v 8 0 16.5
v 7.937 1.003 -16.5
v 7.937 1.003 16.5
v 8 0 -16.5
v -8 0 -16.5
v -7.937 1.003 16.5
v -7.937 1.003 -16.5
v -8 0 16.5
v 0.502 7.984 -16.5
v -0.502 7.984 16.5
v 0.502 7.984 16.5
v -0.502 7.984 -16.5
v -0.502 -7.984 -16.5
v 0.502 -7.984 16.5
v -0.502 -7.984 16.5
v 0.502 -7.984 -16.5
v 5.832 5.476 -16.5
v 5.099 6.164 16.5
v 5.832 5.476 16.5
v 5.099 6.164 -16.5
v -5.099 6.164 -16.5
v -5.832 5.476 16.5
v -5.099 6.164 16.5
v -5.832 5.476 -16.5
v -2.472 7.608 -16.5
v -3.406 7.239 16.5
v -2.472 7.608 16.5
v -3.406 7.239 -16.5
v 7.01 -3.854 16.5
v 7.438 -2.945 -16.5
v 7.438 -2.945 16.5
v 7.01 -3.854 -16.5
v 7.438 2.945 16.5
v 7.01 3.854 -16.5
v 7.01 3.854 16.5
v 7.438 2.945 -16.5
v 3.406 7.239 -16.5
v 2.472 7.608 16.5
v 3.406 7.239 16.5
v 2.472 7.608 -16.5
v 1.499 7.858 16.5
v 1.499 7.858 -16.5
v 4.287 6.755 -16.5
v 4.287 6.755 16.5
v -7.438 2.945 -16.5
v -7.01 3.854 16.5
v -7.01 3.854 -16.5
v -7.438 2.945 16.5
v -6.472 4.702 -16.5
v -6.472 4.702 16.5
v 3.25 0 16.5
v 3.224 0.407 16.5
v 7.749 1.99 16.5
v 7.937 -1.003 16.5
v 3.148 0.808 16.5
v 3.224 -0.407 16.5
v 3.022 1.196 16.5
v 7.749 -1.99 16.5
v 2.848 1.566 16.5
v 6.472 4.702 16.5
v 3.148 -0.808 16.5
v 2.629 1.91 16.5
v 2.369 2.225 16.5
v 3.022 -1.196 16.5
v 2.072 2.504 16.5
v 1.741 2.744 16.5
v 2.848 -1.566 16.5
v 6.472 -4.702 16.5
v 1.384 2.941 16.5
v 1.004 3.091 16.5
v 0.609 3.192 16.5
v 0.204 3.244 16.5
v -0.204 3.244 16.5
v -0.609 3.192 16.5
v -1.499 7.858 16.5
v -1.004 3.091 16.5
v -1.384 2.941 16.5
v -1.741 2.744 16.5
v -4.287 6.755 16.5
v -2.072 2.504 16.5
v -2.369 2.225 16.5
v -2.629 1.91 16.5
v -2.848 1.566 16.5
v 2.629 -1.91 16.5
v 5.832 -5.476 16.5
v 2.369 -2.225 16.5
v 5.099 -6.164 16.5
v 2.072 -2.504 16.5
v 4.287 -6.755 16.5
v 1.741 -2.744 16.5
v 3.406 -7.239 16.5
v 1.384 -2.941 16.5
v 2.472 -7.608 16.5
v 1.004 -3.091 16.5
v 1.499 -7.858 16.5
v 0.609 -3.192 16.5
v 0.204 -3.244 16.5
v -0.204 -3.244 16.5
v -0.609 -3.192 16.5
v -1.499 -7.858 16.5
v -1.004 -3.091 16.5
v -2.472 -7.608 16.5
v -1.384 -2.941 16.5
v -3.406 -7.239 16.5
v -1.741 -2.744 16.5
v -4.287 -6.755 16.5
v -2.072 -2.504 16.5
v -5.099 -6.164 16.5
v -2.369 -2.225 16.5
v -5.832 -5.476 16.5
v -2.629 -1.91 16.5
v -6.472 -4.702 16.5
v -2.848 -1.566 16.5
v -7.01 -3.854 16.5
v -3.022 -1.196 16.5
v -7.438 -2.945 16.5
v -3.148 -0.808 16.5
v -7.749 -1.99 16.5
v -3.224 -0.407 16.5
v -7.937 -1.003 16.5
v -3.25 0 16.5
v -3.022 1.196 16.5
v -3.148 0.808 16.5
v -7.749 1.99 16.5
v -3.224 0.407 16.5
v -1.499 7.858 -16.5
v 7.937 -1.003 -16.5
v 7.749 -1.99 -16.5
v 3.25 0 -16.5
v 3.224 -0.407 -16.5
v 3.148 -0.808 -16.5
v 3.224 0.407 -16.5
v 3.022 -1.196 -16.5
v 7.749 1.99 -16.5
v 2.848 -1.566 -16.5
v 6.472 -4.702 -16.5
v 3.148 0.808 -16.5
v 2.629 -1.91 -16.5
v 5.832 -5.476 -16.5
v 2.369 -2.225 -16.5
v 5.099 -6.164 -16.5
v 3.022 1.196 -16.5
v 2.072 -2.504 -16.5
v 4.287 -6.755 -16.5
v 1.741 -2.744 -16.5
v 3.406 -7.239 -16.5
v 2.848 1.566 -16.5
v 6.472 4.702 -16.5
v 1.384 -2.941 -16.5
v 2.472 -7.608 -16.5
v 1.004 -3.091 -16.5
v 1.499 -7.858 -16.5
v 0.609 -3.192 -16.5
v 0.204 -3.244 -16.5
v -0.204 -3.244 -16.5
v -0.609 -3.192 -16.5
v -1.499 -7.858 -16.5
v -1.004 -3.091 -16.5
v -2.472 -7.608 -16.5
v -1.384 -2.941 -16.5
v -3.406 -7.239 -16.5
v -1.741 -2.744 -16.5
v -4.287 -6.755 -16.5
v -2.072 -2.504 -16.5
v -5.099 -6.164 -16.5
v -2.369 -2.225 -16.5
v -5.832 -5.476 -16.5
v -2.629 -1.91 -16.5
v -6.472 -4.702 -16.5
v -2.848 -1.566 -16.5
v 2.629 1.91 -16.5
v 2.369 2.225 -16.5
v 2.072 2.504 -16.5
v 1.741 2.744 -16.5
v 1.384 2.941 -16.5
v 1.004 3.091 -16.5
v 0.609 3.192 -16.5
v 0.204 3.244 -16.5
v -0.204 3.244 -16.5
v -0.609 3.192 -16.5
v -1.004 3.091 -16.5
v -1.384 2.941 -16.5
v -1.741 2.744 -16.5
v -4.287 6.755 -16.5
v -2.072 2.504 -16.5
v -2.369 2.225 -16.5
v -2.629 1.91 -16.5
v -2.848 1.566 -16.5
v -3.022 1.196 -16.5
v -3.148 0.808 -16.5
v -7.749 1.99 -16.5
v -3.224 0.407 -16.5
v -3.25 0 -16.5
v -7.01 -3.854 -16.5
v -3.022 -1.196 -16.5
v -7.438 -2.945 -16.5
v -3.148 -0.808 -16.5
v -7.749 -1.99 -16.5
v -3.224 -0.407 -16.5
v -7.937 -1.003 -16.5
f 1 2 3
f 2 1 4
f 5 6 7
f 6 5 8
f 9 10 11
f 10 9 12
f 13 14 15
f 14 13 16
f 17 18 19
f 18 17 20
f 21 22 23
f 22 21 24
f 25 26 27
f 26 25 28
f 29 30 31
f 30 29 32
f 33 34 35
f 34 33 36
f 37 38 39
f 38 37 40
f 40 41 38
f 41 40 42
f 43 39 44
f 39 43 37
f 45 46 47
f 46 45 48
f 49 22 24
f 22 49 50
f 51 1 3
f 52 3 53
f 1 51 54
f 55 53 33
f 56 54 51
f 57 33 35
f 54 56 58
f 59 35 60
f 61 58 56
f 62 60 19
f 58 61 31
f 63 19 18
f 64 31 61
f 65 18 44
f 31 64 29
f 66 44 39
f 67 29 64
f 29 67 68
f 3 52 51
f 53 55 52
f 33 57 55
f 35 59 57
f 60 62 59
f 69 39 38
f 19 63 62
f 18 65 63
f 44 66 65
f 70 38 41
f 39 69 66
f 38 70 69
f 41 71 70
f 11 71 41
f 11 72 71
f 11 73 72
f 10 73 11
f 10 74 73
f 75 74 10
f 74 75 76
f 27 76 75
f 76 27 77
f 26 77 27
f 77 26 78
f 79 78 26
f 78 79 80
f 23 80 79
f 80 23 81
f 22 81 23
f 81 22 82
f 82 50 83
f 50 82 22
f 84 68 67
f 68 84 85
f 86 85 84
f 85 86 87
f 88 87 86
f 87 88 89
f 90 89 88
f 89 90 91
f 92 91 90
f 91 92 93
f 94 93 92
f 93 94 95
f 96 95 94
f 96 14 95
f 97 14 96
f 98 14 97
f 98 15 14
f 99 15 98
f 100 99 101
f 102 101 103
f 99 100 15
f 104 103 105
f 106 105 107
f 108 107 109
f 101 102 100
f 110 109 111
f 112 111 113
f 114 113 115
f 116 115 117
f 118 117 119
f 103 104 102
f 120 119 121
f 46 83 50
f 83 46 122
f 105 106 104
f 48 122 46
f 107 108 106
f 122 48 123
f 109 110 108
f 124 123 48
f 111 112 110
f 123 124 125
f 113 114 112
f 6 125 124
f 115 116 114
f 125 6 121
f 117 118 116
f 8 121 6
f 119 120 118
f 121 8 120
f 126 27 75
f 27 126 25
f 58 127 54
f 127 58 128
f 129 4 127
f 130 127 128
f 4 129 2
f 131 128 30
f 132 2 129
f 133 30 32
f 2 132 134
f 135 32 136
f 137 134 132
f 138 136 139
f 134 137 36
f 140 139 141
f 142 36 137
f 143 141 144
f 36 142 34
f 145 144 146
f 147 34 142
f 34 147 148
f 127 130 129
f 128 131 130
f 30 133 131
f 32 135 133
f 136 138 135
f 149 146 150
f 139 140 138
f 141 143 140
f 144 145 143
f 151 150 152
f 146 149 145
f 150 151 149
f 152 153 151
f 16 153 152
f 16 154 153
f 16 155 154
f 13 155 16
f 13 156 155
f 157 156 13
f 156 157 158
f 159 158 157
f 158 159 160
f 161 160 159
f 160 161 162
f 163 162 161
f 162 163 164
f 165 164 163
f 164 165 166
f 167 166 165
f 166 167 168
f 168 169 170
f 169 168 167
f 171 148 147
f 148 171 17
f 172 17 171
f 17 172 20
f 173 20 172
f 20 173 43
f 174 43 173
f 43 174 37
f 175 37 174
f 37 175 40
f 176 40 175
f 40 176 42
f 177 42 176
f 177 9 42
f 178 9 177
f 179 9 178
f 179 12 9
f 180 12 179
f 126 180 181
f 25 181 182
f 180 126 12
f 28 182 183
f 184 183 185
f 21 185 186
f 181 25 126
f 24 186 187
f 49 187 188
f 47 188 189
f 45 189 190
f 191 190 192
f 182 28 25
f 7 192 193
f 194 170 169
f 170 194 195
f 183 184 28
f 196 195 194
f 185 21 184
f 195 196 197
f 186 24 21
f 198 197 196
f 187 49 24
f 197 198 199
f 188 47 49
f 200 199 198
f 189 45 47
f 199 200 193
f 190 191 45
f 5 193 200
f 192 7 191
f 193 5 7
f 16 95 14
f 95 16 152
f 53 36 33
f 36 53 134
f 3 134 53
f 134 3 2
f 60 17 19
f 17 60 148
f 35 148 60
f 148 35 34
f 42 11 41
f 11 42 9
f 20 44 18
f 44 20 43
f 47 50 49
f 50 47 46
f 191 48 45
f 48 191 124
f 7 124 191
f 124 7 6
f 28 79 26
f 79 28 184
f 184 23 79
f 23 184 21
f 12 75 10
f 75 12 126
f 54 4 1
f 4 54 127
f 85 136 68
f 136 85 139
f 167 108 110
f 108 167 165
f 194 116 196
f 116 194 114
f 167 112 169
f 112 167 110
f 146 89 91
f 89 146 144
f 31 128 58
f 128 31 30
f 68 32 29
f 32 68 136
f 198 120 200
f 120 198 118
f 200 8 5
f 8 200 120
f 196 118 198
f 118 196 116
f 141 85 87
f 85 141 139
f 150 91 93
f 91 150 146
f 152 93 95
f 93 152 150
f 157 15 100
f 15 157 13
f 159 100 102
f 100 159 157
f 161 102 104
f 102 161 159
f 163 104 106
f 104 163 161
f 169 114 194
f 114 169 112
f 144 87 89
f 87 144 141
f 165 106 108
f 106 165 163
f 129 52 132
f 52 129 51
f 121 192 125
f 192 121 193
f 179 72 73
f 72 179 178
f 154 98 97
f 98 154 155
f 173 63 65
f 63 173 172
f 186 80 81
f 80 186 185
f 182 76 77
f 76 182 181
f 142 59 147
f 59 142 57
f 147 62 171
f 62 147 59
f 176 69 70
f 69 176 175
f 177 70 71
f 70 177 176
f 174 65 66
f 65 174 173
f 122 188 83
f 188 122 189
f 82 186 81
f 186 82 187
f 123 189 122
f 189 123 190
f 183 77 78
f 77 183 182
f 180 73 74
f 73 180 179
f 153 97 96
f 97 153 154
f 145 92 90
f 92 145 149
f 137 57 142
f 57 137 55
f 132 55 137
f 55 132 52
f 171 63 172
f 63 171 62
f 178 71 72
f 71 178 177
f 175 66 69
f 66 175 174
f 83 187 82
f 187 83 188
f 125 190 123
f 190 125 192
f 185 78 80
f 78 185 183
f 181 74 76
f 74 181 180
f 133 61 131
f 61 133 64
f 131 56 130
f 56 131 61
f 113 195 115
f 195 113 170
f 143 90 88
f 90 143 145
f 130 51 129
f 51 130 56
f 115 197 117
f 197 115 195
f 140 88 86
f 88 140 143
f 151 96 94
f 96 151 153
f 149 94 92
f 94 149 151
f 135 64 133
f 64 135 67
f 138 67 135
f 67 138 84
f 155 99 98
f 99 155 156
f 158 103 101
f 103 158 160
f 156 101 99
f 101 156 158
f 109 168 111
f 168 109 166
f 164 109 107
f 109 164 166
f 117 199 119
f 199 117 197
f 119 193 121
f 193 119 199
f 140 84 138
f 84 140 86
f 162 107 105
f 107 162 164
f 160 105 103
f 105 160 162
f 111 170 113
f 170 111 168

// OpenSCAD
$fn = 50;


difference() {
	union() {
		translate(v = [0, 0, -16.5000000000]) {
			cylinder(h = 33, r = 8.0000000000);
		}
	}
	union() {
		translate(v = [0, 0, -100.0000000000]) {
			cylinder(h = 200, r = 3.2500000000);
		}
	}
}
